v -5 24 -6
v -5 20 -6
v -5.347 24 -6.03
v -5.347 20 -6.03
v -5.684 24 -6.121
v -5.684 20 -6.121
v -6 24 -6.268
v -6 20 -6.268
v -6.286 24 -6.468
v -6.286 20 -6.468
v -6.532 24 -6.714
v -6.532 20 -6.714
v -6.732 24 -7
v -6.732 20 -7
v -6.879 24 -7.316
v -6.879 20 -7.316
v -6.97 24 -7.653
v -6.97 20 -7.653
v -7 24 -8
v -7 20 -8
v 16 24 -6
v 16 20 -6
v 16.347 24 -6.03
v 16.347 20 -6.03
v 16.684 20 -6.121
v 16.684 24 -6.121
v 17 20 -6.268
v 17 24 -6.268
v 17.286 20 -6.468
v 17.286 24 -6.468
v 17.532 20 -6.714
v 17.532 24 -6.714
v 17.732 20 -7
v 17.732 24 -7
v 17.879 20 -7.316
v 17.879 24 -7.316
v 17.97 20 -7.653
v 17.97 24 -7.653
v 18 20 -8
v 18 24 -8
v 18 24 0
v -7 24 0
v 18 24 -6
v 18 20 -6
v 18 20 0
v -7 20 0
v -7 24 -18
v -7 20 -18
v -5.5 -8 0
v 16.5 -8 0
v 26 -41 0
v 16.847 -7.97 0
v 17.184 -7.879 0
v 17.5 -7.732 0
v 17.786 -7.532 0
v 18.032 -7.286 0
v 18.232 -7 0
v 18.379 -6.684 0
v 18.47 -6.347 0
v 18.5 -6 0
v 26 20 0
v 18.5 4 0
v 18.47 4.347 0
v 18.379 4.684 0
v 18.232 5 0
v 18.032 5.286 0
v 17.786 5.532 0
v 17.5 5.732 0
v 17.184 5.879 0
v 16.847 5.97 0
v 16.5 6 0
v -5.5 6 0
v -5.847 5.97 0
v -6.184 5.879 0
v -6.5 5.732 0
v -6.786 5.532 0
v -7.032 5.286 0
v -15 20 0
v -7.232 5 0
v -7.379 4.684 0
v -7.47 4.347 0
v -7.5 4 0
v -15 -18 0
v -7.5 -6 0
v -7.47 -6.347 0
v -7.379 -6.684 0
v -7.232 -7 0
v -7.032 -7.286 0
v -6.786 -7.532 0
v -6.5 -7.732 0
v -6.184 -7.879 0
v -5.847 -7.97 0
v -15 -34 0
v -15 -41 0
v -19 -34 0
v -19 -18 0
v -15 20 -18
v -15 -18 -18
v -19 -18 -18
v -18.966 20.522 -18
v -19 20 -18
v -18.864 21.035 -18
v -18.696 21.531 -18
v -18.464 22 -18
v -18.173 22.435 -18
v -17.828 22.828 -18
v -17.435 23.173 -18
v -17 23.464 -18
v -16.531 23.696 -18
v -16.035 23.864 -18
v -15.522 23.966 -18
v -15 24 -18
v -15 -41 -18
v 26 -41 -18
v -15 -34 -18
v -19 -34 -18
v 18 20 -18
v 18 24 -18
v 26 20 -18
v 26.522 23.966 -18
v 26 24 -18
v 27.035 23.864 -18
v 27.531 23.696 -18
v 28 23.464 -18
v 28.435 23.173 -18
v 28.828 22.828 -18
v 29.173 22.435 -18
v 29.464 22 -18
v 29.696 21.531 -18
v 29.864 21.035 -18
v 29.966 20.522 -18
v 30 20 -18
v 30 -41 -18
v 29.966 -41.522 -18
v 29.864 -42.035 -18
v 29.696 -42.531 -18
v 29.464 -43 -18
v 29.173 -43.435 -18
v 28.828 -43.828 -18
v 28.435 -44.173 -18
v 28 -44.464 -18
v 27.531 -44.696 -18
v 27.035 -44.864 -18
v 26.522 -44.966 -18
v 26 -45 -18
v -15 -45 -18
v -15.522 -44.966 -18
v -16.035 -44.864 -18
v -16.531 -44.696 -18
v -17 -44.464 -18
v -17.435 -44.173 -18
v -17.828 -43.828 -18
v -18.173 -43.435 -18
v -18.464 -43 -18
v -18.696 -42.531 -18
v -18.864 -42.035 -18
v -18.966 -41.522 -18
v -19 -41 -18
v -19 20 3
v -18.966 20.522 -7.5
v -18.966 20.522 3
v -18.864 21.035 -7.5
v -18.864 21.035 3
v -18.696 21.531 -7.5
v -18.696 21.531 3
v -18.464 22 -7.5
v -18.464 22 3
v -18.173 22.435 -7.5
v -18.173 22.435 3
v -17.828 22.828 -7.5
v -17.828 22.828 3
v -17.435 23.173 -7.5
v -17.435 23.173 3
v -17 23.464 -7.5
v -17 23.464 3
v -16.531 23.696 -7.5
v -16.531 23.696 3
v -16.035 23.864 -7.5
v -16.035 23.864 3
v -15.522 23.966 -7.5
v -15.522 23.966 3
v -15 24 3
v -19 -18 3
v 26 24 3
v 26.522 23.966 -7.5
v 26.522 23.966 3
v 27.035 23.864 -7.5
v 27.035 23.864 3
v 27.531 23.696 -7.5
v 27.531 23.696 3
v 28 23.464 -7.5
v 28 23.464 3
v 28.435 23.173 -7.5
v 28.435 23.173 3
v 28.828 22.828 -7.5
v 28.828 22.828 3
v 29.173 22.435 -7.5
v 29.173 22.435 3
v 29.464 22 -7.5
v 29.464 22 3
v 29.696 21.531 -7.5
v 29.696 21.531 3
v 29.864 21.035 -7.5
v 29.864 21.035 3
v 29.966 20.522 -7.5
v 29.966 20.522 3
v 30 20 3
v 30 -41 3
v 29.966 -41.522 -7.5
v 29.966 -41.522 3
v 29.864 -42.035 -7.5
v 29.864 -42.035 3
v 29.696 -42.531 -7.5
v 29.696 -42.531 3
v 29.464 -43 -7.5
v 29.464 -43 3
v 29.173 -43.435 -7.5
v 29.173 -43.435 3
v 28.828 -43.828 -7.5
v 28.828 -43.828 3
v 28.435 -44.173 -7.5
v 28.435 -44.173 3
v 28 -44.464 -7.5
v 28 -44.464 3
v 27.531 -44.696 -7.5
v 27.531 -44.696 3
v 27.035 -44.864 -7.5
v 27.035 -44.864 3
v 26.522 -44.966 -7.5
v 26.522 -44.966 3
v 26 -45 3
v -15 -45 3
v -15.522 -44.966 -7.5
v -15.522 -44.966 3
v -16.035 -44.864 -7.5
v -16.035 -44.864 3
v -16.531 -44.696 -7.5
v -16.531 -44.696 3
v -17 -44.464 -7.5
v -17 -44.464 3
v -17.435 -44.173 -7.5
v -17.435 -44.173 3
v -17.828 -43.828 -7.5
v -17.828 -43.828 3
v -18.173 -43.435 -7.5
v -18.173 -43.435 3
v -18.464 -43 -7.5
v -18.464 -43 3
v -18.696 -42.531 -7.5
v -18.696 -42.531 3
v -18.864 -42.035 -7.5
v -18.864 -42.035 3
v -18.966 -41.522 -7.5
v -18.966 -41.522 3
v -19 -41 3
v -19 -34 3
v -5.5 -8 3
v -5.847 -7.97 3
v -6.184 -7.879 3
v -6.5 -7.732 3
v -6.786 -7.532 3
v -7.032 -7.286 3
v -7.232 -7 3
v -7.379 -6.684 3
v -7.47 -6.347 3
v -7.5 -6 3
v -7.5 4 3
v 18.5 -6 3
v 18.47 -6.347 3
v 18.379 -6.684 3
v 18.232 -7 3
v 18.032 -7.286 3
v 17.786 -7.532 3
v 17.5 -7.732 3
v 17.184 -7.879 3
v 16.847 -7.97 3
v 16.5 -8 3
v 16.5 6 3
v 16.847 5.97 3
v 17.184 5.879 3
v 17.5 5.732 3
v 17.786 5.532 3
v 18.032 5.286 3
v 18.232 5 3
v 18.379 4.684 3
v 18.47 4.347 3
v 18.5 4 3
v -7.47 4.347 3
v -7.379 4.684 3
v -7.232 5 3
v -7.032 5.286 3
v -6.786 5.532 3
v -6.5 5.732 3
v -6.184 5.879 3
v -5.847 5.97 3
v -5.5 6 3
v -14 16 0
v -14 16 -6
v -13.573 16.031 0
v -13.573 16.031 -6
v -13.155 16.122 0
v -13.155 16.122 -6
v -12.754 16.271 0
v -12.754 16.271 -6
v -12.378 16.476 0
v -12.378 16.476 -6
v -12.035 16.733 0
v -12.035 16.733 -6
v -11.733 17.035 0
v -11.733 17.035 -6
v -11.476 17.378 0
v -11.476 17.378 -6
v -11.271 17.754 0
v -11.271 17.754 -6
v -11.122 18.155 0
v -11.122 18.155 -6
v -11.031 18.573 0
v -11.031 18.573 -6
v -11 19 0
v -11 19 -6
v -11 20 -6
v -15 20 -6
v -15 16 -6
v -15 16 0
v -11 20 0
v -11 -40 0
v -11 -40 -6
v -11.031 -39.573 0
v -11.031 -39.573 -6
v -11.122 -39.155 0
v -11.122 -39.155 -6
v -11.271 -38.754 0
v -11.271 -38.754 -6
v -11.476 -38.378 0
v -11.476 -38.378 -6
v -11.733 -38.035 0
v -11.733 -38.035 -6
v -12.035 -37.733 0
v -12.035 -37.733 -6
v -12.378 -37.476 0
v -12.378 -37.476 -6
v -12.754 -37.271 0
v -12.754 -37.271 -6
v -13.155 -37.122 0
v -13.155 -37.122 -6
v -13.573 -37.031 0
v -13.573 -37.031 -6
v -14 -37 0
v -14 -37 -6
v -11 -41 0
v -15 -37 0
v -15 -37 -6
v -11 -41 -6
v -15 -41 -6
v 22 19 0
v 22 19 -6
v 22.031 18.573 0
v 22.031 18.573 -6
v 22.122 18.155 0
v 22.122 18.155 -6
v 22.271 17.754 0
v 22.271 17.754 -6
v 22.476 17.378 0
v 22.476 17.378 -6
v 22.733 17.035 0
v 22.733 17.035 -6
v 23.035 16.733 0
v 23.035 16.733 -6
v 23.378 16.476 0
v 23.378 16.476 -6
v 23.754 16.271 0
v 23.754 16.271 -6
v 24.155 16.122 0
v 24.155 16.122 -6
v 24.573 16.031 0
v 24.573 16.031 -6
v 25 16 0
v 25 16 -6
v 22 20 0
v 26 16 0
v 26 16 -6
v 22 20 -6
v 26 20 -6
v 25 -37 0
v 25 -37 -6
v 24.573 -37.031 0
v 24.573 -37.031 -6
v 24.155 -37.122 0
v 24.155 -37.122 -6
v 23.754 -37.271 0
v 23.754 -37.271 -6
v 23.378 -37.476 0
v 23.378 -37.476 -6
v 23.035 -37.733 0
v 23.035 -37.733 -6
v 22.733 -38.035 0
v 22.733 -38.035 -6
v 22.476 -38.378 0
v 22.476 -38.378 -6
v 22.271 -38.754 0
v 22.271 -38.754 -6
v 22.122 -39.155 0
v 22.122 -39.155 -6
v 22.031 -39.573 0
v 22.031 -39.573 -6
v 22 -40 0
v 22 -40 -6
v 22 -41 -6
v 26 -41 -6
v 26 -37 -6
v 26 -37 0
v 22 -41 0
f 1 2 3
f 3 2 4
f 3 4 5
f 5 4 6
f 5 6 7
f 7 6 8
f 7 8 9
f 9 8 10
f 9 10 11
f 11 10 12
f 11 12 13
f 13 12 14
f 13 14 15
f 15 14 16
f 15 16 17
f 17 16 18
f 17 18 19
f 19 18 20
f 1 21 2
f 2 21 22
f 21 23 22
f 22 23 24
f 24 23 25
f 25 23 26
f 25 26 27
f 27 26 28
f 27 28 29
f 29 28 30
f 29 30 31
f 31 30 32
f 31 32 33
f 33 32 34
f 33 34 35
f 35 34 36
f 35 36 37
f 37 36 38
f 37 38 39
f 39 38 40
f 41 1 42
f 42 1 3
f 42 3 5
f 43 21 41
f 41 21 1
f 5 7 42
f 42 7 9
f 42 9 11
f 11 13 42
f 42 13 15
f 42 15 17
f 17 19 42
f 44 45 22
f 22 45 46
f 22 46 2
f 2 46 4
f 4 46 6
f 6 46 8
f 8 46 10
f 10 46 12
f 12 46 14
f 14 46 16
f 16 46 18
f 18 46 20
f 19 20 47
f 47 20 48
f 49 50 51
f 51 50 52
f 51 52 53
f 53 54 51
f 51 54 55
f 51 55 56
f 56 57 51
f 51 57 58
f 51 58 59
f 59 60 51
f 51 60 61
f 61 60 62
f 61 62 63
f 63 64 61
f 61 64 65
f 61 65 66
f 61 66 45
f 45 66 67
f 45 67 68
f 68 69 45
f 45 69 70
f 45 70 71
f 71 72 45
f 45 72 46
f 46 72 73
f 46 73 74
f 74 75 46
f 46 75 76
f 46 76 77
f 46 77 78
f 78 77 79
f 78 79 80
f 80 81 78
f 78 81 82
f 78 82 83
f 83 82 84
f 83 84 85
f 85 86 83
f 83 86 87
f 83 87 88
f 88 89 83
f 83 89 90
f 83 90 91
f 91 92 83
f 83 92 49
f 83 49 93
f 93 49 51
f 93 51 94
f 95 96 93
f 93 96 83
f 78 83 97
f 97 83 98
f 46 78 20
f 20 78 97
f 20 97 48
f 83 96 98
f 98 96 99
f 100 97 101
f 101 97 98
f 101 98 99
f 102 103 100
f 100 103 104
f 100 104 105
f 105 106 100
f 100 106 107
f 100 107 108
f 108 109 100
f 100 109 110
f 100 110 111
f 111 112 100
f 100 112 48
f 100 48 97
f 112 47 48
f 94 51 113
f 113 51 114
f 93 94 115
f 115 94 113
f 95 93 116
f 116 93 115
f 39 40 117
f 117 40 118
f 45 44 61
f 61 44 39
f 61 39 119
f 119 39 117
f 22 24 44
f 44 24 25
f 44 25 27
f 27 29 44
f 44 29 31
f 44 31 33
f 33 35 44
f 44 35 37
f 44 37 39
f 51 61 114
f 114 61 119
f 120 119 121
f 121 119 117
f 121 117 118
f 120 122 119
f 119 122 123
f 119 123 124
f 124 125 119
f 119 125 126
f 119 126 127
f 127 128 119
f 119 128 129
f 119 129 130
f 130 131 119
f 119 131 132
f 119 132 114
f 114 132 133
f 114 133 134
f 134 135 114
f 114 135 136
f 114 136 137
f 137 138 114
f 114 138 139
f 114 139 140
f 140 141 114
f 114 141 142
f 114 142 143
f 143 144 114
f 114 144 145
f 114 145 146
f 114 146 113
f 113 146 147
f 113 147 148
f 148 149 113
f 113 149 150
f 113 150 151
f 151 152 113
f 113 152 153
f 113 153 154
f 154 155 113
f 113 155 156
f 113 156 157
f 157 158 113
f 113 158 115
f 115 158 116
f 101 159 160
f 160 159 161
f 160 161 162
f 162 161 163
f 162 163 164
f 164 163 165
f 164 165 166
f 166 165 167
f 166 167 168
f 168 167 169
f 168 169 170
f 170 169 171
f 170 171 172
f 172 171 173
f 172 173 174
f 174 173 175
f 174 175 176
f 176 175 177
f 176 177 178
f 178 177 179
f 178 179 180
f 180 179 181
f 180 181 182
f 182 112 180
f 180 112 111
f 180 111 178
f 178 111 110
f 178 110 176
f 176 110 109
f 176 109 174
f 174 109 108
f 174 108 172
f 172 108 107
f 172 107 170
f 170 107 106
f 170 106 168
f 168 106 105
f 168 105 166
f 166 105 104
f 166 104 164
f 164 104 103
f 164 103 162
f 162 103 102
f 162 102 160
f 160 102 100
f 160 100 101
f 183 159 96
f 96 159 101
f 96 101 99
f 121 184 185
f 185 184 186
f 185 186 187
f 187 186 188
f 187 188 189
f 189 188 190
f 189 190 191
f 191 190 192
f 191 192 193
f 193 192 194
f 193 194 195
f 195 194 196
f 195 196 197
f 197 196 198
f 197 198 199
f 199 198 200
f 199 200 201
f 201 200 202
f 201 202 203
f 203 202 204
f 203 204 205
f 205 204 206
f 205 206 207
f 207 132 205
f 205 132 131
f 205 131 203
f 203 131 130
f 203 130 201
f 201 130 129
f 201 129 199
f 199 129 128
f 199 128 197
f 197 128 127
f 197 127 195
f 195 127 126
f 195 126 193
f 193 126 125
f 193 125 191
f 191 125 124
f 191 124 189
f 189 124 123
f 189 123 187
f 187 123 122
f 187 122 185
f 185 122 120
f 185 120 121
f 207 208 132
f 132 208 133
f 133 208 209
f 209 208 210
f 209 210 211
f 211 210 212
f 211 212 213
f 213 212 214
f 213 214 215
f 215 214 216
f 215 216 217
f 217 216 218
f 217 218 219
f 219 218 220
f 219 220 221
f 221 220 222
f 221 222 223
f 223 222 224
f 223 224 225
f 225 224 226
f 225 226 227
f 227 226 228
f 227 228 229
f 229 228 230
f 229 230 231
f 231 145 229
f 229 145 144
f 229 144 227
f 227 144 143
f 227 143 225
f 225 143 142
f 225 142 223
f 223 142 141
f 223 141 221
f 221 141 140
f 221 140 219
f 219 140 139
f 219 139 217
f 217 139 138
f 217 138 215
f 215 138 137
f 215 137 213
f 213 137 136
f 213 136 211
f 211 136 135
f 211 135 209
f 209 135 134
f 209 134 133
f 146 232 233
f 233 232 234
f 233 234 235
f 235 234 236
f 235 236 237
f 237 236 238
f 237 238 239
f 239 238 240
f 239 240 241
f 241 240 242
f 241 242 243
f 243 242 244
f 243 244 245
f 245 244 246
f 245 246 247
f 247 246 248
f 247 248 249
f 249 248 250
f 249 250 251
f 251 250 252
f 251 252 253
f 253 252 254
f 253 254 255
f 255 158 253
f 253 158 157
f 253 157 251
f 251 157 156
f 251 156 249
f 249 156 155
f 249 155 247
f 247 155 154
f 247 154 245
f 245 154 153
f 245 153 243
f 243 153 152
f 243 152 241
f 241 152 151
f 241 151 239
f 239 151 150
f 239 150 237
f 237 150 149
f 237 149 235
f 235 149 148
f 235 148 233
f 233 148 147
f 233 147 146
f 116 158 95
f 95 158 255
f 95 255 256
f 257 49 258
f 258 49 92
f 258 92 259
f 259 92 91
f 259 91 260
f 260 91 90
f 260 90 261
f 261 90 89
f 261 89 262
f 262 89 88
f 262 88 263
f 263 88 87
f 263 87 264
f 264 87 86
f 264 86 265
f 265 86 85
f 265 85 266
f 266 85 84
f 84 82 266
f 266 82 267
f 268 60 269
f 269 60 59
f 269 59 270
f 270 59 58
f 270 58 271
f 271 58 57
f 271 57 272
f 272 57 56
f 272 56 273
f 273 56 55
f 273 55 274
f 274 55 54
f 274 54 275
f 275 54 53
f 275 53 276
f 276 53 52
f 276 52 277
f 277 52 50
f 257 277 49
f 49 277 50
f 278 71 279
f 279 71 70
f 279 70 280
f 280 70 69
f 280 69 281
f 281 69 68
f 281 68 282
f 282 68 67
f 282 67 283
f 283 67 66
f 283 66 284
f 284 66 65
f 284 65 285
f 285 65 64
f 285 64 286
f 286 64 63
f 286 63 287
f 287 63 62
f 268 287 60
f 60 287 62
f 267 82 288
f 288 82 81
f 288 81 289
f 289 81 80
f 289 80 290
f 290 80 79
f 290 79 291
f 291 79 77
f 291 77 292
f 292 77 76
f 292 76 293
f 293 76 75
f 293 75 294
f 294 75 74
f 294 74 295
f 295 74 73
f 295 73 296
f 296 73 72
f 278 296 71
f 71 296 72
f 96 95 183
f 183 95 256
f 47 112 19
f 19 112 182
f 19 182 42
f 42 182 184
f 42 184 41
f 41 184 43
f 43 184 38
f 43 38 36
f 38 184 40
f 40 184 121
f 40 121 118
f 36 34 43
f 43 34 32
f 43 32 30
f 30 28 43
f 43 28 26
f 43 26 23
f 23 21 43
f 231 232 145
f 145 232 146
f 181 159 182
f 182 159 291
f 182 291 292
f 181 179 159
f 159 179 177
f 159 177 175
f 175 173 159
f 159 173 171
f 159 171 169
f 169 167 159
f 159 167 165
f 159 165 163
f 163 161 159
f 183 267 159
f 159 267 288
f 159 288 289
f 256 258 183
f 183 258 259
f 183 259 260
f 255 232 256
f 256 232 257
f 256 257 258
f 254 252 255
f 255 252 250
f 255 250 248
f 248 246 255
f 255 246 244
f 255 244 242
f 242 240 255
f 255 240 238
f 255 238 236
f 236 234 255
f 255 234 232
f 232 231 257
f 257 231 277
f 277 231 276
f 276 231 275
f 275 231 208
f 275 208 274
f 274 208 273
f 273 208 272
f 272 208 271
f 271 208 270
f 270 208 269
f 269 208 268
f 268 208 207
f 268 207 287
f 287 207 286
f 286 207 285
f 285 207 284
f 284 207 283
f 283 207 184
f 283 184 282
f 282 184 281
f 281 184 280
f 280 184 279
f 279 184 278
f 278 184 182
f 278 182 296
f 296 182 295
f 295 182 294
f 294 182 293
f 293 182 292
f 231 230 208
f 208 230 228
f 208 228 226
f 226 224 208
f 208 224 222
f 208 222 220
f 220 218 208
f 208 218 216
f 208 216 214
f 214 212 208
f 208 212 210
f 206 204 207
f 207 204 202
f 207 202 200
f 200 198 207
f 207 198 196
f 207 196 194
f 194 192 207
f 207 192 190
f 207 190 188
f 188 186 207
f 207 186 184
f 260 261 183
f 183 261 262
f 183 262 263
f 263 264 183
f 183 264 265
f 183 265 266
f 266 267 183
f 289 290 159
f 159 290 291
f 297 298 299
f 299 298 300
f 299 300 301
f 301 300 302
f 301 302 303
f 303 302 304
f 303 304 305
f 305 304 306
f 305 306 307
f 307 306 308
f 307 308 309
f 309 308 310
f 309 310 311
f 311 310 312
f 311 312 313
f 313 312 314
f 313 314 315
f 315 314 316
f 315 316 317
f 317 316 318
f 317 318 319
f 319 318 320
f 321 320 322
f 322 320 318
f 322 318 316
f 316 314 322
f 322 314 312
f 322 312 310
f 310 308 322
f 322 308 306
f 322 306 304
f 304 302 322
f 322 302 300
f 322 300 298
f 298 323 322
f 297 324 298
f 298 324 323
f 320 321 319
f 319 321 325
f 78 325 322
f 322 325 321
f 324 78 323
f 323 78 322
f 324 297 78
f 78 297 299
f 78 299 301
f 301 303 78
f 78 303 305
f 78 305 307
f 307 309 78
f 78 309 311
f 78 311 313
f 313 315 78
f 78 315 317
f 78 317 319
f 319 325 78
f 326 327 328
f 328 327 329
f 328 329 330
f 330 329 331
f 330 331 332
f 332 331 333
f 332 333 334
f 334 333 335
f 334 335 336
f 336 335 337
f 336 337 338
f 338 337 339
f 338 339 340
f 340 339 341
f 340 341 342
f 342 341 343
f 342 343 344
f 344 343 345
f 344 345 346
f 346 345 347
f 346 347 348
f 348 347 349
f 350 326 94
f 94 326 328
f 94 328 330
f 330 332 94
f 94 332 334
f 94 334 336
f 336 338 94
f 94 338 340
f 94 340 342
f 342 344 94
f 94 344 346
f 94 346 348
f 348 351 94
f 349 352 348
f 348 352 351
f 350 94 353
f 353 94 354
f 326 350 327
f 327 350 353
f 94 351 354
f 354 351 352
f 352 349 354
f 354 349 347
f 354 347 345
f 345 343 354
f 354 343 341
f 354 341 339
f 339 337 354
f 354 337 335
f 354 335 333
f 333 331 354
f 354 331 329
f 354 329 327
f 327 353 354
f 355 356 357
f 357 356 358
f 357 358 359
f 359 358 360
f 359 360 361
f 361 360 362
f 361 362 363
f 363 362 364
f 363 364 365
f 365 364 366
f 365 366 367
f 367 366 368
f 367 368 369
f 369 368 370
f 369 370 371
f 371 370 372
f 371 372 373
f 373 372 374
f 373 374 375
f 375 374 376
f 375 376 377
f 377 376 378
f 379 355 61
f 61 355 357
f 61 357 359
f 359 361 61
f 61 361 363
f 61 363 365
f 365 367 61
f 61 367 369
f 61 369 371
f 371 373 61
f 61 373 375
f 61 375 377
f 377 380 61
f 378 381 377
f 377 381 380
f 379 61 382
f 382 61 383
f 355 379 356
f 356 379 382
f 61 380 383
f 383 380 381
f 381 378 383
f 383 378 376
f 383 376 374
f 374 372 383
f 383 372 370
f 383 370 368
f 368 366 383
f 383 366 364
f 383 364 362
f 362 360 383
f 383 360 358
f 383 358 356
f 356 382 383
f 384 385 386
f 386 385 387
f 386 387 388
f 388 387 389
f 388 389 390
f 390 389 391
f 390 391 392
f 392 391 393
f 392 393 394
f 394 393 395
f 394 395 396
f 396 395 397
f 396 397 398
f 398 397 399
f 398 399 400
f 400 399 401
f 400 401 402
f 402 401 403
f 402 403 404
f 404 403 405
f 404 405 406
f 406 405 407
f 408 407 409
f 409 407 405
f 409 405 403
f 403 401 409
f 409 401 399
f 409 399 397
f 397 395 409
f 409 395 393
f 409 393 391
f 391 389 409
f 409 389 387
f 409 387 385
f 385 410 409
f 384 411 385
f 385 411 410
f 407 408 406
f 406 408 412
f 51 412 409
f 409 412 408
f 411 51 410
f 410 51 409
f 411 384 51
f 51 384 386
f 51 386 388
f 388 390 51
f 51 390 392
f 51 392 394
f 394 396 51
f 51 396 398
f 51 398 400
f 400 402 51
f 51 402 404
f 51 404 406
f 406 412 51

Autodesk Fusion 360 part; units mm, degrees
sketch "Sketch1" plane through (0, 0, 0) normal (0, 0, 1) x (1, 0, 0)
  line L0 (-15, 20) -> (26, 20)
  line L1 (26, 20) -> (26, -41)
  line L2 (26, -41) -> (-15, -41)
  line L3 (-15, -41) -> (-15, 20)
  line L4 (-7.5, 6) -> (18.5, 6)
  line L5 (18.5, 6) -> (18.5, -8)
  line L6 (18.5, -8) -> (-7.5, -8)
  line L7 (-7.5, -8) -> (-7.5, 6)
  line L8 (-19, 24) -> (30, 24)
  line L9 (30, 24) -> (30, -45)
  line L10 (30, -45) -> (-19, -45)
  line L11 (-19, -45) -> (-19, 24)
  line L12 (-15, -34) -> (-19, -34)
  line L13 (-19, -34) -> (-19, -18)
  line L14 (-19, -18) -> (-15, -18)
  line L15 (-15, -18) -> (-15, -34)
  line L16 (-15, 20) -> (-11, 20)
  line L17 (-11, 20) -> (-11, 16)
  line L18 (-11, 16) -> (-15, 16)
  line L19 (-15, 16) -> (-15, 20)
  line L20 (26, 20) -> (22, 20)
  line L21 (22, 20) -> (22, 16)
  line L22 (22, 16) -> (26, 16)
  line L23 (26, 16) -> (26, 20)
  line L24 (-15, -41) -> (-11, -41)
  line L25 (-11, -41) -> (-11, -37)
  line L26 (-11, -37) -> (-15, -37)
  line L27 (-15, -37) -> (-15, -41)
  line L28 (26, -41) -> (22, -41)
  line L29 (22, -41) -> (22, -37)
  line L30 (22, -37) -> (26, -37)
  line L31 (26, -37) -> (26, -41)
  line L32 (18, 24) -> (-7, 24)
  line L33 (-7, 24) -> (-7, 20)
  line L34 (-7, 20) -> (18, 20)
  line L35 (18, 20) -> (18, 24)
  dimension "d1" = 41
  dimension "d2" = 61
  dimension "d3" = 7.5
  dimension "d4" = 7.5
  dimension "d5" = 33
  dimension "d6" = 14
  dimension "d7" = 4
  dimension "d8" = 4
  dimension "d9" = 4
  dimension "d10" = 4
  dimension "d11" = 7
  dimension "d12" = 16
  dimension "d13" = 4
  dimension "d14" = 4
  dimension "d15" = 4
  dimension "d16" = 4
  dimension "d17" = 4
  dimension "d18" = 4
  dimension "d19" = 4
  dimension "d20" = 4
  dimension "d23" = 12
  dimension "d24" = 12
extrude "Extrude1" add sketch "Sketch1" along normal blind 3 makes body 1
extrude "Extrude2" add sketch "Sketch1" against normal blind 6 separate body contours L0 L3 L16 L17 L18 L19 | L0 L1 L20 L21 L22 L23 | L2 L3 L24 L25 L26 L27 | L1 L2 L28 L29 L30 L31 makes body 2 at (-13.6667, 20, -2) makes body 3 at (-12.3333, -37, -2) makes body 4 at (23.3333, 20, -2) makes body 5 at (26, -38.3333, -2)
extrude "Extrude3" add sketch "Sketch1" against normal blind 18 separate body contours L0 L3 L8 L11 L14 L16 L19 L33 | L0 L1 L2 L3 L8 L9 L10 L11 L12 L20 L23 L24 L27 L28 L31 L35 makes body 6 at (30, 1, -12) makes body 7 at (-19, -4, -6)
fillet "Fillet1" radius 2 4 edges at (-7.5, 6, 1.5) (18.5, 6, 1.5) (18.5, -8, 1.5) (-7.5, -8, 1.5) on bodies 1
fillet "Fillet2" radius 4 8 edges at (-19, -45, 1.5) (30, -45, 1.5) (30, 24, 1.5) (-19, 24, 1.5) (-19, -45, -9) (30, -45, -9) (30, 24, -9) (-19, 24, -9) on bodies 1 6 7
extrude "Extrude4" add sketch "Sketch1" against normal blind 6 contours L0 L8 L32 L33 L34 L35 bodies 1 6 7
fillet "Fillet3" radius 2 2 edges at (18, 22, -6) (-7, 22, -6) on bodies 1
fillet "Fillet4" radius 3 4 edges at (-11, 16, -3) (-11, -37, -3) (22, 16, -3) (22, -37, -3) on bodies 2 3 4 5
